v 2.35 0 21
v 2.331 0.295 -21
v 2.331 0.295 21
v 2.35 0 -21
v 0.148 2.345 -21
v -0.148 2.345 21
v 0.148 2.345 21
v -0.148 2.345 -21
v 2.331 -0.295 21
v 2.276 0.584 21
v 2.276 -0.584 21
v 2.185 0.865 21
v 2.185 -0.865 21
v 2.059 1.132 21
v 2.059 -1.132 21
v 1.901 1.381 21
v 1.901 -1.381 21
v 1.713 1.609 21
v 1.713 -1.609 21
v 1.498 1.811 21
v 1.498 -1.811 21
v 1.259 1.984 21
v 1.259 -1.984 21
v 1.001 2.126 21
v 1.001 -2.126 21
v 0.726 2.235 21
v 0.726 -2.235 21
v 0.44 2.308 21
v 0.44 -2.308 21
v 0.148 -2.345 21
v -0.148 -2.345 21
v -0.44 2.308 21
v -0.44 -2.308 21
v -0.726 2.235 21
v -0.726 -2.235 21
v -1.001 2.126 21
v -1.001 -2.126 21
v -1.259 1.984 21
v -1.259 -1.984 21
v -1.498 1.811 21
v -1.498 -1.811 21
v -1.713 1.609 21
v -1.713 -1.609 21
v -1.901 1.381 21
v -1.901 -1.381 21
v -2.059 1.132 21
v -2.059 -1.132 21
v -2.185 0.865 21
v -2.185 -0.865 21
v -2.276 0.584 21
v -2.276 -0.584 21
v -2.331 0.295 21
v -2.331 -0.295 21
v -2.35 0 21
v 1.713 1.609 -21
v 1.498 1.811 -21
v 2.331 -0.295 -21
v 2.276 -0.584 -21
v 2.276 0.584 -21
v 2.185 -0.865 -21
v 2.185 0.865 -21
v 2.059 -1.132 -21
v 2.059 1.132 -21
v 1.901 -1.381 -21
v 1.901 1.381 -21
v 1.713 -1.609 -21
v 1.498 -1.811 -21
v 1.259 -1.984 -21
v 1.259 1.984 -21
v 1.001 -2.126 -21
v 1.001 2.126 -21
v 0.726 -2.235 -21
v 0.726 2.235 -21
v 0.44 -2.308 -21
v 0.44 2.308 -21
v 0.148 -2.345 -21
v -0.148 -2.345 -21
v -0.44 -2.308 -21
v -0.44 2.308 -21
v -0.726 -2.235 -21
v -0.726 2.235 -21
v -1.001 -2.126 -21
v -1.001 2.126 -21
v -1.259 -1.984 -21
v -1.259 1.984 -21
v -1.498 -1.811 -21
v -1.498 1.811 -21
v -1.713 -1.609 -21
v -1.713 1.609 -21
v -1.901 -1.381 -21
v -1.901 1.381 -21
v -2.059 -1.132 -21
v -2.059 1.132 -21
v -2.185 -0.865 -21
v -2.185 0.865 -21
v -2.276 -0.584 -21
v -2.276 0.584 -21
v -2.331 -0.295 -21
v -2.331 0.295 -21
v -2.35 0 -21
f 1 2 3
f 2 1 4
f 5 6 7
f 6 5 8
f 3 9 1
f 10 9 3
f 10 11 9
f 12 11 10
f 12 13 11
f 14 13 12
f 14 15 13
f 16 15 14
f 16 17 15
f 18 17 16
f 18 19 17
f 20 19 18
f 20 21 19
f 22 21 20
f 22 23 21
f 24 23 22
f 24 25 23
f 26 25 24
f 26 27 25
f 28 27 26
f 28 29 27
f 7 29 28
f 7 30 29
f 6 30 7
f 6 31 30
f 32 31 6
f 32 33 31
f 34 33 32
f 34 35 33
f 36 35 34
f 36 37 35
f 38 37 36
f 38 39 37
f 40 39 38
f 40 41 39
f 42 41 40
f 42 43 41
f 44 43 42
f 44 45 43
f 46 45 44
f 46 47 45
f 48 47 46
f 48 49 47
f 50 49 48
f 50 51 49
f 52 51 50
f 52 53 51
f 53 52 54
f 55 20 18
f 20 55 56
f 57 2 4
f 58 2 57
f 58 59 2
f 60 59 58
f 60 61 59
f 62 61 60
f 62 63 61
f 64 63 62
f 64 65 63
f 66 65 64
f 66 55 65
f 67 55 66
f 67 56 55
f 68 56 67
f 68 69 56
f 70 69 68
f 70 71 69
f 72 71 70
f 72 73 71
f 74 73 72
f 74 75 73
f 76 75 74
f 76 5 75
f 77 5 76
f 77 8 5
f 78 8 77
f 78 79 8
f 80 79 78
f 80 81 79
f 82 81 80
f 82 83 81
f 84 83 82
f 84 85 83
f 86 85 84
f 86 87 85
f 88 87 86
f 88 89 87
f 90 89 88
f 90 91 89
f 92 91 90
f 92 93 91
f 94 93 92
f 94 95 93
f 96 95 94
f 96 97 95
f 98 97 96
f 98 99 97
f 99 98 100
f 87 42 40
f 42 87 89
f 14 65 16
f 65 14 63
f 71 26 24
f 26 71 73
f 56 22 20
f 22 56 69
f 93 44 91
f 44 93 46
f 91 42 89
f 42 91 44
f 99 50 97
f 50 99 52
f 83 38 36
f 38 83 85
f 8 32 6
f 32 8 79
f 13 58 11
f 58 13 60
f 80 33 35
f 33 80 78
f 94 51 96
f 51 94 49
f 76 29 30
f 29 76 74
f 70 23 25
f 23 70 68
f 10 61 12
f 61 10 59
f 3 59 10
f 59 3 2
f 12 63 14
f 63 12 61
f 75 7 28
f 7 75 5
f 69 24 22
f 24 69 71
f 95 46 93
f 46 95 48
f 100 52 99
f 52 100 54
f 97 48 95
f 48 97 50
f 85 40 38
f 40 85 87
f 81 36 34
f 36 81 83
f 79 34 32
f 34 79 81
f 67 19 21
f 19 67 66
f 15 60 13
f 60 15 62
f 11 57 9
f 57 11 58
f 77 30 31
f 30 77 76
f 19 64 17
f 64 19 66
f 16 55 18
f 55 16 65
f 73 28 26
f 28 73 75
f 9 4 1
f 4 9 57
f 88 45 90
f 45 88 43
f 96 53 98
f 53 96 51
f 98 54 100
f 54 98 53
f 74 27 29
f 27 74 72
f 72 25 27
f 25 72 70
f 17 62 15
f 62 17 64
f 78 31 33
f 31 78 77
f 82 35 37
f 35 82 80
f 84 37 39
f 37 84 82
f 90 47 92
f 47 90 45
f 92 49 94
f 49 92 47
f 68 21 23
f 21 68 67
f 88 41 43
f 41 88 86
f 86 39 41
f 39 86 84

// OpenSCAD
$fn = 50;


difference() {
	union() {
		translate(v = [0, 0, -21.0000000000]) {
			cylinder(h = 42, r = 2.3500000000);
		}
	}
	union() {
		translate(v = [0, 0, -100.0000000000]) {
			cylinder(h = 200, r = 0);
		}
	}
}
